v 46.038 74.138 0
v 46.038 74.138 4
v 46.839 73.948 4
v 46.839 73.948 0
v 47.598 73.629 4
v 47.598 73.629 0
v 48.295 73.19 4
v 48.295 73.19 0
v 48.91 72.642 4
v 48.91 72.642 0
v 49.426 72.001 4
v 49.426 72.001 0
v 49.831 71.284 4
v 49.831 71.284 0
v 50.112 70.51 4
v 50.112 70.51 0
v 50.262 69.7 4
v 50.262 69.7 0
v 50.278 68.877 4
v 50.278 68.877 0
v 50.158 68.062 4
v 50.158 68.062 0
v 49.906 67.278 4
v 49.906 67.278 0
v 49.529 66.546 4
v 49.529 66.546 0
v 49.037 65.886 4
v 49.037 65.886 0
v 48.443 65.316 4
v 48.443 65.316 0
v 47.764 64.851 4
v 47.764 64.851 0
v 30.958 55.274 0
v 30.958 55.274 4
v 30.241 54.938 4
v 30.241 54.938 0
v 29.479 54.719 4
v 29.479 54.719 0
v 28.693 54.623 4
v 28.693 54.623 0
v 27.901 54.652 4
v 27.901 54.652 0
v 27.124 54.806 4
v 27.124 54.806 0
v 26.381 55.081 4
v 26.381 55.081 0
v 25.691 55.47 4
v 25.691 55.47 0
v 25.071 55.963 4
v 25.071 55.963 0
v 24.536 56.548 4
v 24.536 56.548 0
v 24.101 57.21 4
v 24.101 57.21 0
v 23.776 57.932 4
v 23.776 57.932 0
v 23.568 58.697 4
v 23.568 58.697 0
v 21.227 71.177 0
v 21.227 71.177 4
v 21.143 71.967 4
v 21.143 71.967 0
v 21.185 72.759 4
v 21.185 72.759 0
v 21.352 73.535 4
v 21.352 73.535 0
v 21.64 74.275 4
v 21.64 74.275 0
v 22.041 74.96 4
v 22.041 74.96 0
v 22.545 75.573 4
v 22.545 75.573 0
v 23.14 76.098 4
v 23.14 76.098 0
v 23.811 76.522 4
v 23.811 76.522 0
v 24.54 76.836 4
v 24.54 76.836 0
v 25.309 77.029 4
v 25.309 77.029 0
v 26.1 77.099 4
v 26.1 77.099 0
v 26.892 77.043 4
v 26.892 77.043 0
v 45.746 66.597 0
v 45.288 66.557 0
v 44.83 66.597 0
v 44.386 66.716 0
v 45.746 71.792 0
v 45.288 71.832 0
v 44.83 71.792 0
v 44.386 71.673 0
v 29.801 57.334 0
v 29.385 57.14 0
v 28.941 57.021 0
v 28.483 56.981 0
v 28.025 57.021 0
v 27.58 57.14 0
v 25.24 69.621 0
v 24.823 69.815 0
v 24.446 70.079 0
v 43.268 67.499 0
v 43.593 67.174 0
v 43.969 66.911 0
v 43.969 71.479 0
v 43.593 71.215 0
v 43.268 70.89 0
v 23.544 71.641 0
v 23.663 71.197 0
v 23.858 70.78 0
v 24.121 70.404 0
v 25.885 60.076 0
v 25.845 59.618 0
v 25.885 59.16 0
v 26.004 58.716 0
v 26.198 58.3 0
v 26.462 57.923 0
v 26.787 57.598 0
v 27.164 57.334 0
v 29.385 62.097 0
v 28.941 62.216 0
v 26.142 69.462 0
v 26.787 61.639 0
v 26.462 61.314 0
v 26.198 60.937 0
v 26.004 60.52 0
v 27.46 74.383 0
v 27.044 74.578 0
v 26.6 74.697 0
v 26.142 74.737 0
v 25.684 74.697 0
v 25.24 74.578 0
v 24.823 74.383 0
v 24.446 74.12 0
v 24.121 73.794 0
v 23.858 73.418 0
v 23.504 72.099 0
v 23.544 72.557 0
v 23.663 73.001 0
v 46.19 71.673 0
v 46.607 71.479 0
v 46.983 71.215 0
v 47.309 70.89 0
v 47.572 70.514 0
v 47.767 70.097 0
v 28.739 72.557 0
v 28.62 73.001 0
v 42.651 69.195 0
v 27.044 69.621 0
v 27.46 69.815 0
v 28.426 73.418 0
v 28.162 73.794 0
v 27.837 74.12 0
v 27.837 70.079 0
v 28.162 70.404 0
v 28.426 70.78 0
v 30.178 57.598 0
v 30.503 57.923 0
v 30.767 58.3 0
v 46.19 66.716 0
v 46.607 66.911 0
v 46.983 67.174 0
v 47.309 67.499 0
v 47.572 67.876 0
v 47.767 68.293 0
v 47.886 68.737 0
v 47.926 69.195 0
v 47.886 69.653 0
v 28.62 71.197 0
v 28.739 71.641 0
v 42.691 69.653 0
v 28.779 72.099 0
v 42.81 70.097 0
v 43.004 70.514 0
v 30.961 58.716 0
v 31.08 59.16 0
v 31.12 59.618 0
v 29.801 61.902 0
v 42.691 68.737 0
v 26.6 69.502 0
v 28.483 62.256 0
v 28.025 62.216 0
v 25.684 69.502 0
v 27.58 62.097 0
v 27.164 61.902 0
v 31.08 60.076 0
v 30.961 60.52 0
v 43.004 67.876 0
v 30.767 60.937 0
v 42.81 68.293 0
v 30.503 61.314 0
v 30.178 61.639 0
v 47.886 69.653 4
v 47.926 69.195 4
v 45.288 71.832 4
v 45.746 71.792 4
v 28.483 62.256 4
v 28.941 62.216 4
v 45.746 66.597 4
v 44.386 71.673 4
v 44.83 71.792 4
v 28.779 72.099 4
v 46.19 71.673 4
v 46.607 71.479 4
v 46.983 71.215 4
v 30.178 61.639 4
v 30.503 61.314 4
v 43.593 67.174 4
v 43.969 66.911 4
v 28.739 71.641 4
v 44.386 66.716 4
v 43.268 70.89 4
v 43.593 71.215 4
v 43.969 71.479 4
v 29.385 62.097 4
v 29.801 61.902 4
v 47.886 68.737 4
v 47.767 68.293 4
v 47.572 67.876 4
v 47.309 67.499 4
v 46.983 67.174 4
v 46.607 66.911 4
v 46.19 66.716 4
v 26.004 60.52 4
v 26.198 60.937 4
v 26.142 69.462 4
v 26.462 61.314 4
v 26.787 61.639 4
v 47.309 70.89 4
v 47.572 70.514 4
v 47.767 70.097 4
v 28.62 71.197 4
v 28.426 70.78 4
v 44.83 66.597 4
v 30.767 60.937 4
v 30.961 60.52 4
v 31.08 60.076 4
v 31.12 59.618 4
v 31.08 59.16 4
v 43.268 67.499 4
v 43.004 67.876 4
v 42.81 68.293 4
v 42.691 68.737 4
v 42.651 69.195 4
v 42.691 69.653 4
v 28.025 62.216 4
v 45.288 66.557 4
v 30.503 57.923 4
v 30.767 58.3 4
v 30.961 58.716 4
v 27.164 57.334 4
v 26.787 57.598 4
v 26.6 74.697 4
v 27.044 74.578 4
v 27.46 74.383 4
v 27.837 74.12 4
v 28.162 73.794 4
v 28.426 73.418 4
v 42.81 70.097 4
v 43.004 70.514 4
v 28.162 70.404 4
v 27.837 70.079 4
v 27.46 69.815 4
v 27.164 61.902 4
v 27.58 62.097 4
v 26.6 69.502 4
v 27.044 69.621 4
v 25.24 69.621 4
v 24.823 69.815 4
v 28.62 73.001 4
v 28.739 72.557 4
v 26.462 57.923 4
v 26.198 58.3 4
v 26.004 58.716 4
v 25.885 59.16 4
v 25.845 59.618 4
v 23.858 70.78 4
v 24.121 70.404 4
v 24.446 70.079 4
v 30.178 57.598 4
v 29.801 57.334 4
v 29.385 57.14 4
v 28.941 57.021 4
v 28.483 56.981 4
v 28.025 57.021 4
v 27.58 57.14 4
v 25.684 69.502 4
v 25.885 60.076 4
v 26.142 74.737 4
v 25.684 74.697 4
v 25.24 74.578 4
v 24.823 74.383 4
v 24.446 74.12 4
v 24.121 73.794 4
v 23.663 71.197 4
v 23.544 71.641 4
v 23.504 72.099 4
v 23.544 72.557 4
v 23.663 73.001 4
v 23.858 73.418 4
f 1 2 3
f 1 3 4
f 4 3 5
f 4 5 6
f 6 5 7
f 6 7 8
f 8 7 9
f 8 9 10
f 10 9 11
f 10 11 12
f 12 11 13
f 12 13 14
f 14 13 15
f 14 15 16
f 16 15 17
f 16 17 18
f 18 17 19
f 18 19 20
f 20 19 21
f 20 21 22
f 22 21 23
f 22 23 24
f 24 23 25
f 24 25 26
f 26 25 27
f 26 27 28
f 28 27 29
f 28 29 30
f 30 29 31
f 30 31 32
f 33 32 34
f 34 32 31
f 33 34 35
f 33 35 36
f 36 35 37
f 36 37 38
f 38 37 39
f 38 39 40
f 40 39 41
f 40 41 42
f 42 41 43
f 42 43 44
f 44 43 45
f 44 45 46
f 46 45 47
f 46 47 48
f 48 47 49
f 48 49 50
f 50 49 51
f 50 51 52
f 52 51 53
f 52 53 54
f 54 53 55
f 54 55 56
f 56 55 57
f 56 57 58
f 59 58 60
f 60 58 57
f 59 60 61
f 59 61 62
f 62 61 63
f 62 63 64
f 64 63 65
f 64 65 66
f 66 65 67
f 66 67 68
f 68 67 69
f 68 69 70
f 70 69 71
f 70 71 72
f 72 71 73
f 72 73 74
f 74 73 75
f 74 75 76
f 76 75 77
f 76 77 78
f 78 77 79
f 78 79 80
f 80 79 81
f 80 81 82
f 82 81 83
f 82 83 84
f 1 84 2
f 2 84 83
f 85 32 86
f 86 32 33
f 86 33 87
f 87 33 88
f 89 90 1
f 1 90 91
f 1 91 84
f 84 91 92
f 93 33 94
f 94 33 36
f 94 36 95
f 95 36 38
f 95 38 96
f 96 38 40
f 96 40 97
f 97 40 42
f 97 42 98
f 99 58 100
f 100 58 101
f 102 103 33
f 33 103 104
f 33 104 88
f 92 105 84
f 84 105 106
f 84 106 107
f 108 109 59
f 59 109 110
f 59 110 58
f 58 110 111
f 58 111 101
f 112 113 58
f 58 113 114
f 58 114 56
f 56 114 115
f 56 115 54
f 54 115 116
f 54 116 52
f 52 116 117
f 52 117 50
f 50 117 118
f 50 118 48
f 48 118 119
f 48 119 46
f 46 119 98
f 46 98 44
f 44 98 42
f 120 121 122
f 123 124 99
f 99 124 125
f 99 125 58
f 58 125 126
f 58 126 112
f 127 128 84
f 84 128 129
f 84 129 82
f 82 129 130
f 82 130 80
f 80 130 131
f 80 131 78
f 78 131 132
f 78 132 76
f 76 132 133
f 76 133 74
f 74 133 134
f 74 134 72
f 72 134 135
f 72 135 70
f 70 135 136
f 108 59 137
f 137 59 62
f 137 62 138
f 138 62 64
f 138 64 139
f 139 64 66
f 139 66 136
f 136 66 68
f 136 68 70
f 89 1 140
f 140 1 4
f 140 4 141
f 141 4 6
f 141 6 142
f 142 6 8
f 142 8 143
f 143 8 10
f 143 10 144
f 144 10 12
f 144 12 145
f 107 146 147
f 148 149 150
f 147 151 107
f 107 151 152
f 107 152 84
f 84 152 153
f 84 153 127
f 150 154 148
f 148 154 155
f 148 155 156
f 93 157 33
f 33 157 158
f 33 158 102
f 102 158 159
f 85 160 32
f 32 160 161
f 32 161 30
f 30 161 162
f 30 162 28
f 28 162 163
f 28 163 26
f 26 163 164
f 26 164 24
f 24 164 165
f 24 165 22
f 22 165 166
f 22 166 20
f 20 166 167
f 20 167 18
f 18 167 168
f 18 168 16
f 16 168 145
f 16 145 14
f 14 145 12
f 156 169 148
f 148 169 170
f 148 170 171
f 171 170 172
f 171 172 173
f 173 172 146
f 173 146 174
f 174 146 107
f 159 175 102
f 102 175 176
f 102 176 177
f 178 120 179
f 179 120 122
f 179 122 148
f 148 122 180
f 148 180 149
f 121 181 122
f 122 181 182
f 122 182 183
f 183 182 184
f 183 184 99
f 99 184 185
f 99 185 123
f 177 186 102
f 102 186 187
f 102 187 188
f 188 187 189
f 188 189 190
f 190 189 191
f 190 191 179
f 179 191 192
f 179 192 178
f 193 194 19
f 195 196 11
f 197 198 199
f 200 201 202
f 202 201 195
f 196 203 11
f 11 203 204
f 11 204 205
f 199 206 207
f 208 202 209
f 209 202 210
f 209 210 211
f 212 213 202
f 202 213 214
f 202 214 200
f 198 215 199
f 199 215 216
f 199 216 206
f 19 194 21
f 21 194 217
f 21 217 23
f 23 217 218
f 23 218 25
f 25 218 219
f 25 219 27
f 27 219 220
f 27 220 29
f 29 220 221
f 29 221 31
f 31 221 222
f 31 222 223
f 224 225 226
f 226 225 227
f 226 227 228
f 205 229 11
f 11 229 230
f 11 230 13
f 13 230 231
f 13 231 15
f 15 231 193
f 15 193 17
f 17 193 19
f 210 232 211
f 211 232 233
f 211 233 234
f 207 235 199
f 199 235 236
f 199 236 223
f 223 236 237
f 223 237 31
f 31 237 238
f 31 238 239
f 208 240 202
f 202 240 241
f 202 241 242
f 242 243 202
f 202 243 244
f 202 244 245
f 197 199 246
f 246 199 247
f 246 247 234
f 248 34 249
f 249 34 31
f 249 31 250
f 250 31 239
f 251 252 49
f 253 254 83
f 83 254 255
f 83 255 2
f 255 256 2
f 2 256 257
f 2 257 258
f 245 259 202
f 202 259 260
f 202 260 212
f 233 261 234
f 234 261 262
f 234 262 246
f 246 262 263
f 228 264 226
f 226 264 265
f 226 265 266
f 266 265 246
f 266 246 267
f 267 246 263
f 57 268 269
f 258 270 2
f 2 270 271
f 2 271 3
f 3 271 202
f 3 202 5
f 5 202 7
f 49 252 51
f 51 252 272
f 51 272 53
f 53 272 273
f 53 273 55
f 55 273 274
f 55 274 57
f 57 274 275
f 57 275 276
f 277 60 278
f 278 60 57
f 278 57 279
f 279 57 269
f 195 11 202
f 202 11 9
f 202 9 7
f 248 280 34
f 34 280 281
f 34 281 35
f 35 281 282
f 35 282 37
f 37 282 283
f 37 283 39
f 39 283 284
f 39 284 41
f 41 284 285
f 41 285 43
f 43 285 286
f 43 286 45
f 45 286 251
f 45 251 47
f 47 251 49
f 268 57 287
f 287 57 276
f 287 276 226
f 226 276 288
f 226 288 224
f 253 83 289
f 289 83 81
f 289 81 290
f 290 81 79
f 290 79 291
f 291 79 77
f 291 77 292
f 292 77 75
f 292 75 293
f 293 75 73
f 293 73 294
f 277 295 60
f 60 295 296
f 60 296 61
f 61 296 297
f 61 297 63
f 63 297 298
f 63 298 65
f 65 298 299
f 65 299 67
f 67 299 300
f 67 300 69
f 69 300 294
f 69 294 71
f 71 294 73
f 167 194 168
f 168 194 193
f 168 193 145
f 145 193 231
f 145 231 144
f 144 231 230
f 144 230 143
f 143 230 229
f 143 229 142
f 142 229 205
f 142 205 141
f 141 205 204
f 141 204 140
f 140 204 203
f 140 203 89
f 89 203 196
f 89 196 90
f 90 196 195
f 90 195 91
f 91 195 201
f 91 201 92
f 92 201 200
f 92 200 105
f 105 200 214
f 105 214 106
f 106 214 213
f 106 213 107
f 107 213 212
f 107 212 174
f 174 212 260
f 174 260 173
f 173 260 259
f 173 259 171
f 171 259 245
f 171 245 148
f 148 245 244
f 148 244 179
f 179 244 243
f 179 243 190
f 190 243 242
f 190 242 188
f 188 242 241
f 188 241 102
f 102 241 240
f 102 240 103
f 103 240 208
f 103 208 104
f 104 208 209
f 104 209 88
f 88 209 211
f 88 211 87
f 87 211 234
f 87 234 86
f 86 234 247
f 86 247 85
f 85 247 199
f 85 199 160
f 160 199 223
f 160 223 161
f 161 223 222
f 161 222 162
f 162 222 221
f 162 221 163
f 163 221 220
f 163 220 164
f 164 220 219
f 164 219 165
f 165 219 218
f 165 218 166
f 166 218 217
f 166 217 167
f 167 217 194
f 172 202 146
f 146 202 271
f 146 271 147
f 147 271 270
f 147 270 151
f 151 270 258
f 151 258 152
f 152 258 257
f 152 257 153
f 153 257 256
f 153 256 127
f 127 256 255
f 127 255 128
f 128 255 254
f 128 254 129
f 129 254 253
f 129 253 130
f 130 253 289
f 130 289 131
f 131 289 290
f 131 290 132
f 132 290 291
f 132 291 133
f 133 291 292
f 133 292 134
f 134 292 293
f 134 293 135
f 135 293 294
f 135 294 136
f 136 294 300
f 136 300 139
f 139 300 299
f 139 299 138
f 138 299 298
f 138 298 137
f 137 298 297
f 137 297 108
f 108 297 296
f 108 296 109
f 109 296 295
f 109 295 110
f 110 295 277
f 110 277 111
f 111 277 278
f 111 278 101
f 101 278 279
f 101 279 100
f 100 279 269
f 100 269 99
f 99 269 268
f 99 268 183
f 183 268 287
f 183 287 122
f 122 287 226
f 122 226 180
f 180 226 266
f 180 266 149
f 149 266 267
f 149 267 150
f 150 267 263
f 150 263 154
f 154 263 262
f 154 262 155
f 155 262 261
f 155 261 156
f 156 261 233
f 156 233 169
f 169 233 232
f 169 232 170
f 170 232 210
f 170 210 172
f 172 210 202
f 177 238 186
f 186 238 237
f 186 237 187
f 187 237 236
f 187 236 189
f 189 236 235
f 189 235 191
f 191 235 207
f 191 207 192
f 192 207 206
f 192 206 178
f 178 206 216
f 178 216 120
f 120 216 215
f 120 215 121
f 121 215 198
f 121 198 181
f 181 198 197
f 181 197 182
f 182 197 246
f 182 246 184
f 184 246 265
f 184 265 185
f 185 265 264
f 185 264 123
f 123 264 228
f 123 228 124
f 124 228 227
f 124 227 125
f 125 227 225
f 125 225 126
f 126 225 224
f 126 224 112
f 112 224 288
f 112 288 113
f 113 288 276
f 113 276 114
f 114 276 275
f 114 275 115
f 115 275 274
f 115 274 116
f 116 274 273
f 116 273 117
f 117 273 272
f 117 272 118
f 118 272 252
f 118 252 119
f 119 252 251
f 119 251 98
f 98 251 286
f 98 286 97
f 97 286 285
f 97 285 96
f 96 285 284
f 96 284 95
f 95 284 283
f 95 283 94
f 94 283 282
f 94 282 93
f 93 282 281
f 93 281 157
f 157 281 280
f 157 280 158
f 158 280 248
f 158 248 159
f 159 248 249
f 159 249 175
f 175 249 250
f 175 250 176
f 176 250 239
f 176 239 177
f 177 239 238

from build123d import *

# Parameters (mm, degrees)
SKETCH1_R           = 2.6375
BOSS_EXTRUDE1_DEPTH = 4


with BuildPart() as part:
    # Sketch1 → Boss-Extrude1 (new body)
    with BuildSketch(Plane.XY.offset(4)):
        with BuildLine():
            Line((46.037988185, 74.138222759), (26.891590001, 77.042584155))
            ThreePointArc((26.891590001, 77.042584155), (22.54509271, 75.572516008), (21.227396241, 71.177426126))
            Line((21.227396241, 71.177426126), (23.568249259, 58.696629092))
            ThreePointArc((23.568249259, 58.696629092), (26.381296021, 55.081304051), (30.958043521, 55.274150009))
            Line((30.958043521, 55.274150009), (47.763588686, 64.850585648))
            ThreePointArc((47.763588686, 64.850585648), (50.20397723, 70.108121575), (46.037988185, 74.138222759))
        make_face()
        with Locations((45.288105172, 69.194775028)):
            Circle(SKETCH1_R, mode=Mode.SUBTRACT)
        with Locations((26.141706988, 72.099136424)):
            Circle(SKETCH1_R, mode=Mode.SUBTRACT)
        with Locations((28.482560007, 59.618339389)):
            Circle(SKETCH1_R, mode=Mode.SUBTRACT)
    extrude(amount=-BOSS_EXTRUDE1_DEPTH)


solid = part.part
